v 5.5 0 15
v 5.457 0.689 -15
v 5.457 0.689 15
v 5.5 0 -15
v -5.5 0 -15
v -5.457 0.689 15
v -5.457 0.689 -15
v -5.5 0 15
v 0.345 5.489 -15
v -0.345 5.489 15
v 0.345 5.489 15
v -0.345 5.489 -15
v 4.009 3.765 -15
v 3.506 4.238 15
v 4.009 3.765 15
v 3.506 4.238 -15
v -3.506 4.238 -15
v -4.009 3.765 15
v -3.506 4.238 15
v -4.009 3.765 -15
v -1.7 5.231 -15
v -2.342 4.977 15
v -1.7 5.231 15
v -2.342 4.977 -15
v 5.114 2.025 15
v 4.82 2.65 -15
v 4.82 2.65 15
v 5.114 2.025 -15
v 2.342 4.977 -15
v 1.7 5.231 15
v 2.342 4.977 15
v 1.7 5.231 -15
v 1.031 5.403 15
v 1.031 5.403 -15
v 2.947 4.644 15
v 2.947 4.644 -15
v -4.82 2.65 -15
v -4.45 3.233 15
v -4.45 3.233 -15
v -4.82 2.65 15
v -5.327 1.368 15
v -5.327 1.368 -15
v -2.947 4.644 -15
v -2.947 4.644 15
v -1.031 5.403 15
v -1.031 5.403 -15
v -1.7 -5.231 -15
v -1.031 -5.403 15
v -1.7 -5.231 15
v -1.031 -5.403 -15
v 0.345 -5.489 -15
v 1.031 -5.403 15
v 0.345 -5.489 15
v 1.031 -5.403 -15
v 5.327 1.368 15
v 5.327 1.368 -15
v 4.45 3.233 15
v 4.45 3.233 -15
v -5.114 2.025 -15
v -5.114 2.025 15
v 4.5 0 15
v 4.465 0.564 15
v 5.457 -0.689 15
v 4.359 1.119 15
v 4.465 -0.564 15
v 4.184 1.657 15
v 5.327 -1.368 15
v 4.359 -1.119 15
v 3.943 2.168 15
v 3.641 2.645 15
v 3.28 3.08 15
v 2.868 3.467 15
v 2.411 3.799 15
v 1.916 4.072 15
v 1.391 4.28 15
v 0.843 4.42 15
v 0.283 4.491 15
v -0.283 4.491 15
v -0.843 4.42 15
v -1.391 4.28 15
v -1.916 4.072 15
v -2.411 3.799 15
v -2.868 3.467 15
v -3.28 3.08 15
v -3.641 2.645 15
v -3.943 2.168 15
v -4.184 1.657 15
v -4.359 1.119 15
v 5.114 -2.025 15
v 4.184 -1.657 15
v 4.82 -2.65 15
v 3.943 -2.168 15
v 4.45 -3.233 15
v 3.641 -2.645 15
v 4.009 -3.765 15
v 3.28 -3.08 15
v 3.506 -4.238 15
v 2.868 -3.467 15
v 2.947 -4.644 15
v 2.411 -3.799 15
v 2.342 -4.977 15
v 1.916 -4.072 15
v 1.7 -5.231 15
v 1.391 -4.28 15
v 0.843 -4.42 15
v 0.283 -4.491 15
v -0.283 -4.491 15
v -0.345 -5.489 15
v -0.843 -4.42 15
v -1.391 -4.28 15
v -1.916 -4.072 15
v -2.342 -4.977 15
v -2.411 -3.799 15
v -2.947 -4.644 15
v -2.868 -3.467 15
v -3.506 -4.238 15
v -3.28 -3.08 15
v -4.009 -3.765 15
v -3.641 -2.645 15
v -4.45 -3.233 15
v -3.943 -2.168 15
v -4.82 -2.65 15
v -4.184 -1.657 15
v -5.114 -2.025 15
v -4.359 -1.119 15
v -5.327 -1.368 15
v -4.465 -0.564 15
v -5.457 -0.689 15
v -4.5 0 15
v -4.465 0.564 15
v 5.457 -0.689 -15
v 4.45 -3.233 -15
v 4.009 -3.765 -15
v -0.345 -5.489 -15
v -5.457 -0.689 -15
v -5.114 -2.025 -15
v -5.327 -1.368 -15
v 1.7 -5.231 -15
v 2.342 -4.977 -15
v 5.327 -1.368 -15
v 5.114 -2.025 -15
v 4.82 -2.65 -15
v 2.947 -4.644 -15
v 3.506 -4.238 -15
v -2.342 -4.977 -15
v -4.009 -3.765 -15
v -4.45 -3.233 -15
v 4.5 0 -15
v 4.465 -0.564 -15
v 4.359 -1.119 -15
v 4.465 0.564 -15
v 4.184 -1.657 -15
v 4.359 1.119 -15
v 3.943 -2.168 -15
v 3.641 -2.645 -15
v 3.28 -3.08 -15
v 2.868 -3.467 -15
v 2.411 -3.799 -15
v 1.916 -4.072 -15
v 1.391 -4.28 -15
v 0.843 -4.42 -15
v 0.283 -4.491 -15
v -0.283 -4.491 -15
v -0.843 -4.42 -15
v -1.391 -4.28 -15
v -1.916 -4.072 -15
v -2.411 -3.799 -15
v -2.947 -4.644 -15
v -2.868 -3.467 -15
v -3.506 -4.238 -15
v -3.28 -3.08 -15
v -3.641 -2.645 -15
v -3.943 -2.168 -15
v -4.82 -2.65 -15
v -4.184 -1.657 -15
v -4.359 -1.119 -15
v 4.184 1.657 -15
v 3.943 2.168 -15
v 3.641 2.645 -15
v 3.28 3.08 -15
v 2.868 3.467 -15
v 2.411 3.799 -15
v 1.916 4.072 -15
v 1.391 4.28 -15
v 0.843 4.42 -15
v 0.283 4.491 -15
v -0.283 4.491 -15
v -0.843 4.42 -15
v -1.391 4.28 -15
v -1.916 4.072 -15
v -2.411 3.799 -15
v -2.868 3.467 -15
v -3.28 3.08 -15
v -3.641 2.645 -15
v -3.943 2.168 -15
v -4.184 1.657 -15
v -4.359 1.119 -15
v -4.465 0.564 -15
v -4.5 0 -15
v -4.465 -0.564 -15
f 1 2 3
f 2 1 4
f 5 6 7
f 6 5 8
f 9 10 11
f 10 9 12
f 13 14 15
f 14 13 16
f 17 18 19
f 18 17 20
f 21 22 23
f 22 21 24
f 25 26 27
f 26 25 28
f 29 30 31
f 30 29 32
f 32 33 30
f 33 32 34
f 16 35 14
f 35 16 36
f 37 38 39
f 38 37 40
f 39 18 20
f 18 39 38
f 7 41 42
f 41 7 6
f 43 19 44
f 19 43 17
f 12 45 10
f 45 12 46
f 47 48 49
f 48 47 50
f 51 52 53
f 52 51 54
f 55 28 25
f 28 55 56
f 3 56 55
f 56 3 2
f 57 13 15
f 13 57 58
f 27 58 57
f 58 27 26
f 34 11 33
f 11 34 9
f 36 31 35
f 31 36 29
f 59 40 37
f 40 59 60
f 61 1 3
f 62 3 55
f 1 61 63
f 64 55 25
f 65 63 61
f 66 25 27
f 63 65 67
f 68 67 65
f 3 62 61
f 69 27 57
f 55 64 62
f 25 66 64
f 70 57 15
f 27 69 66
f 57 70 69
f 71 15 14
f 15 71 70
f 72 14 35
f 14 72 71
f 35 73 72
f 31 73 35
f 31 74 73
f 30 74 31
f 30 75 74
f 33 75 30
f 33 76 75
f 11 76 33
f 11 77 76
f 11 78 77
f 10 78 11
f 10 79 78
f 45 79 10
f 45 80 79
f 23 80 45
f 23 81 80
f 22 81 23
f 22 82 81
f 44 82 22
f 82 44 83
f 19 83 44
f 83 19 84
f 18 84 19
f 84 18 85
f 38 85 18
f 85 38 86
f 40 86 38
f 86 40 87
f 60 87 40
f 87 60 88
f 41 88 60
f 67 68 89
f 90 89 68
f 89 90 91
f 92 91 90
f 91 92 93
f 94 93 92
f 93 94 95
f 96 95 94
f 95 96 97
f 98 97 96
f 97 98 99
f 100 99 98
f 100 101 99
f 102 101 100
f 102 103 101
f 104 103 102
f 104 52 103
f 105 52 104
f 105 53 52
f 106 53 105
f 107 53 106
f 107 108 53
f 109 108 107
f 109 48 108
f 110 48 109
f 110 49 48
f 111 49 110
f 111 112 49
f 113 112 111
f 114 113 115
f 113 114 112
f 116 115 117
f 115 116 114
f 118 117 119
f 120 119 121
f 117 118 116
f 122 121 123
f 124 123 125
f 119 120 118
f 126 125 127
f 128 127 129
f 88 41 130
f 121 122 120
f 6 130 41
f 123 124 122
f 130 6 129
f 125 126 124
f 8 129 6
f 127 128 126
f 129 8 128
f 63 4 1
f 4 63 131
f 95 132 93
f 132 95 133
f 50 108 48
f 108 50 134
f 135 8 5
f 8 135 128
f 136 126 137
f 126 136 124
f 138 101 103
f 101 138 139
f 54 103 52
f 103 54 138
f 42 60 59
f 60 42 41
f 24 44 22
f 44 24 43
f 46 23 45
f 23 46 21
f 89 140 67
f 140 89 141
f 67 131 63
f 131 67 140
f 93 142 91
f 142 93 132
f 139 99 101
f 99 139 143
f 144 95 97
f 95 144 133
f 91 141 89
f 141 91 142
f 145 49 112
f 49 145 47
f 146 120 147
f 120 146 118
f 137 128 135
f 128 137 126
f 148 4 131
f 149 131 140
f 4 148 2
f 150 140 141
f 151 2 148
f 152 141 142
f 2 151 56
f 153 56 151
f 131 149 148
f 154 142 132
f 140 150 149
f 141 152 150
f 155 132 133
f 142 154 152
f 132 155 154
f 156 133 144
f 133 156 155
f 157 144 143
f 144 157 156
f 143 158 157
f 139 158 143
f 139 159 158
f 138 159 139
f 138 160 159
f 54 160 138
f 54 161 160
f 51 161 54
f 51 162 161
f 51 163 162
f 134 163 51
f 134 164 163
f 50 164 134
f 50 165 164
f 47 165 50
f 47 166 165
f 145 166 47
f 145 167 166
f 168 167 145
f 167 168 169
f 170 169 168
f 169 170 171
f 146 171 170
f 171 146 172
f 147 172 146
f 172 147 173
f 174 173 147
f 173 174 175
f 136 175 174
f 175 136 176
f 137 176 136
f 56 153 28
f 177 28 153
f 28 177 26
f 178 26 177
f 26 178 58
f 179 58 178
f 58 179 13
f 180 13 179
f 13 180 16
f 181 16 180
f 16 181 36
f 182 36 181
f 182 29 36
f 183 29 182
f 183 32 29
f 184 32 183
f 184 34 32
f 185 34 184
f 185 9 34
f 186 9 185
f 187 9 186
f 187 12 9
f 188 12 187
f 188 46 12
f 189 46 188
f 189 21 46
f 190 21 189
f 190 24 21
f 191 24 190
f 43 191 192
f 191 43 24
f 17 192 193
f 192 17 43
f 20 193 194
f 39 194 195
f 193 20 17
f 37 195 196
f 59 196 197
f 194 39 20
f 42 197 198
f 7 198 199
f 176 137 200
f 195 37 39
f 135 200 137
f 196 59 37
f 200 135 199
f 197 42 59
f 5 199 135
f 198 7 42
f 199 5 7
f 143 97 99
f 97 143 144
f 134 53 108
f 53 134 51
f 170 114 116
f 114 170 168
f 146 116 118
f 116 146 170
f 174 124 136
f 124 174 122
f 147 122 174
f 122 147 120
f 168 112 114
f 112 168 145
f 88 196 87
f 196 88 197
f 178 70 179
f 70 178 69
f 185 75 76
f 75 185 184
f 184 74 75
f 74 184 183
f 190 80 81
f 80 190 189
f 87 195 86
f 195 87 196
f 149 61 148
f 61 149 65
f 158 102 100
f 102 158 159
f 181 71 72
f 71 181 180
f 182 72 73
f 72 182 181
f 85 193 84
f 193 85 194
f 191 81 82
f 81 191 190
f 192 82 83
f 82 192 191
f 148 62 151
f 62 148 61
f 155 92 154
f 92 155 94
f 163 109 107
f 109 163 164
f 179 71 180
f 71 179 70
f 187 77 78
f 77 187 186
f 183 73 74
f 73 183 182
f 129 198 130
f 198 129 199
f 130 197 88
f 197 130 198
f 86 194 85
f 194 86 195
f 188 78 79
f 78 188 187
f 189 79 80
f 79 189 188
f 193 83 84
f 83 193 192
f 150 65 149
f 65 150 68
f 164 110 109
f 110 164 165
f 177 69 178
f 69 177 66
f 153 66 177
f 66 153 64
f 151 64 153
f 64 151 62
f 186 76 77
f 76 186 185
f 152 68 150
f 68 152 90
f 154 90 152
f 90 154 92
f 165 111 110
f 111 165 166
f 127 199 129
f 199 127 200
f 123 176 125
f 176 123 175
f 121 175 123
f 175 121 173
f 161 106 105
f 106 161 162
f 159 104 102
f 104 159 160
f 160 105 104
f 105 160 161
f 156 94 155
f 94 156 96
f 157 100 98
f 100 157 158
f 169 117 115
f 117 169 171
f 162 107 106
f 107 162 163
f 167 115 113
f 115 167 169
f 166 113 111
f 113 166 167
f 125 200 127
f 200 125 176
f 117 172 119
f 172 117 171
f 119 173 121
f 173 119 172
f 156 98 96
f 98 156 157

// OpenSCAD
$fn = 50;


difference() {
	union() {
		translate(v = [0, 0, -15.0000000000]) {
			cylinder(h = 30, r = 5.5000000000);
		}
	}
	union() {
		translate(v = [0, 0, -100.0000000000]) {
			cylinder(h = 200, r = 4.5000000000);
		}
	}
}
